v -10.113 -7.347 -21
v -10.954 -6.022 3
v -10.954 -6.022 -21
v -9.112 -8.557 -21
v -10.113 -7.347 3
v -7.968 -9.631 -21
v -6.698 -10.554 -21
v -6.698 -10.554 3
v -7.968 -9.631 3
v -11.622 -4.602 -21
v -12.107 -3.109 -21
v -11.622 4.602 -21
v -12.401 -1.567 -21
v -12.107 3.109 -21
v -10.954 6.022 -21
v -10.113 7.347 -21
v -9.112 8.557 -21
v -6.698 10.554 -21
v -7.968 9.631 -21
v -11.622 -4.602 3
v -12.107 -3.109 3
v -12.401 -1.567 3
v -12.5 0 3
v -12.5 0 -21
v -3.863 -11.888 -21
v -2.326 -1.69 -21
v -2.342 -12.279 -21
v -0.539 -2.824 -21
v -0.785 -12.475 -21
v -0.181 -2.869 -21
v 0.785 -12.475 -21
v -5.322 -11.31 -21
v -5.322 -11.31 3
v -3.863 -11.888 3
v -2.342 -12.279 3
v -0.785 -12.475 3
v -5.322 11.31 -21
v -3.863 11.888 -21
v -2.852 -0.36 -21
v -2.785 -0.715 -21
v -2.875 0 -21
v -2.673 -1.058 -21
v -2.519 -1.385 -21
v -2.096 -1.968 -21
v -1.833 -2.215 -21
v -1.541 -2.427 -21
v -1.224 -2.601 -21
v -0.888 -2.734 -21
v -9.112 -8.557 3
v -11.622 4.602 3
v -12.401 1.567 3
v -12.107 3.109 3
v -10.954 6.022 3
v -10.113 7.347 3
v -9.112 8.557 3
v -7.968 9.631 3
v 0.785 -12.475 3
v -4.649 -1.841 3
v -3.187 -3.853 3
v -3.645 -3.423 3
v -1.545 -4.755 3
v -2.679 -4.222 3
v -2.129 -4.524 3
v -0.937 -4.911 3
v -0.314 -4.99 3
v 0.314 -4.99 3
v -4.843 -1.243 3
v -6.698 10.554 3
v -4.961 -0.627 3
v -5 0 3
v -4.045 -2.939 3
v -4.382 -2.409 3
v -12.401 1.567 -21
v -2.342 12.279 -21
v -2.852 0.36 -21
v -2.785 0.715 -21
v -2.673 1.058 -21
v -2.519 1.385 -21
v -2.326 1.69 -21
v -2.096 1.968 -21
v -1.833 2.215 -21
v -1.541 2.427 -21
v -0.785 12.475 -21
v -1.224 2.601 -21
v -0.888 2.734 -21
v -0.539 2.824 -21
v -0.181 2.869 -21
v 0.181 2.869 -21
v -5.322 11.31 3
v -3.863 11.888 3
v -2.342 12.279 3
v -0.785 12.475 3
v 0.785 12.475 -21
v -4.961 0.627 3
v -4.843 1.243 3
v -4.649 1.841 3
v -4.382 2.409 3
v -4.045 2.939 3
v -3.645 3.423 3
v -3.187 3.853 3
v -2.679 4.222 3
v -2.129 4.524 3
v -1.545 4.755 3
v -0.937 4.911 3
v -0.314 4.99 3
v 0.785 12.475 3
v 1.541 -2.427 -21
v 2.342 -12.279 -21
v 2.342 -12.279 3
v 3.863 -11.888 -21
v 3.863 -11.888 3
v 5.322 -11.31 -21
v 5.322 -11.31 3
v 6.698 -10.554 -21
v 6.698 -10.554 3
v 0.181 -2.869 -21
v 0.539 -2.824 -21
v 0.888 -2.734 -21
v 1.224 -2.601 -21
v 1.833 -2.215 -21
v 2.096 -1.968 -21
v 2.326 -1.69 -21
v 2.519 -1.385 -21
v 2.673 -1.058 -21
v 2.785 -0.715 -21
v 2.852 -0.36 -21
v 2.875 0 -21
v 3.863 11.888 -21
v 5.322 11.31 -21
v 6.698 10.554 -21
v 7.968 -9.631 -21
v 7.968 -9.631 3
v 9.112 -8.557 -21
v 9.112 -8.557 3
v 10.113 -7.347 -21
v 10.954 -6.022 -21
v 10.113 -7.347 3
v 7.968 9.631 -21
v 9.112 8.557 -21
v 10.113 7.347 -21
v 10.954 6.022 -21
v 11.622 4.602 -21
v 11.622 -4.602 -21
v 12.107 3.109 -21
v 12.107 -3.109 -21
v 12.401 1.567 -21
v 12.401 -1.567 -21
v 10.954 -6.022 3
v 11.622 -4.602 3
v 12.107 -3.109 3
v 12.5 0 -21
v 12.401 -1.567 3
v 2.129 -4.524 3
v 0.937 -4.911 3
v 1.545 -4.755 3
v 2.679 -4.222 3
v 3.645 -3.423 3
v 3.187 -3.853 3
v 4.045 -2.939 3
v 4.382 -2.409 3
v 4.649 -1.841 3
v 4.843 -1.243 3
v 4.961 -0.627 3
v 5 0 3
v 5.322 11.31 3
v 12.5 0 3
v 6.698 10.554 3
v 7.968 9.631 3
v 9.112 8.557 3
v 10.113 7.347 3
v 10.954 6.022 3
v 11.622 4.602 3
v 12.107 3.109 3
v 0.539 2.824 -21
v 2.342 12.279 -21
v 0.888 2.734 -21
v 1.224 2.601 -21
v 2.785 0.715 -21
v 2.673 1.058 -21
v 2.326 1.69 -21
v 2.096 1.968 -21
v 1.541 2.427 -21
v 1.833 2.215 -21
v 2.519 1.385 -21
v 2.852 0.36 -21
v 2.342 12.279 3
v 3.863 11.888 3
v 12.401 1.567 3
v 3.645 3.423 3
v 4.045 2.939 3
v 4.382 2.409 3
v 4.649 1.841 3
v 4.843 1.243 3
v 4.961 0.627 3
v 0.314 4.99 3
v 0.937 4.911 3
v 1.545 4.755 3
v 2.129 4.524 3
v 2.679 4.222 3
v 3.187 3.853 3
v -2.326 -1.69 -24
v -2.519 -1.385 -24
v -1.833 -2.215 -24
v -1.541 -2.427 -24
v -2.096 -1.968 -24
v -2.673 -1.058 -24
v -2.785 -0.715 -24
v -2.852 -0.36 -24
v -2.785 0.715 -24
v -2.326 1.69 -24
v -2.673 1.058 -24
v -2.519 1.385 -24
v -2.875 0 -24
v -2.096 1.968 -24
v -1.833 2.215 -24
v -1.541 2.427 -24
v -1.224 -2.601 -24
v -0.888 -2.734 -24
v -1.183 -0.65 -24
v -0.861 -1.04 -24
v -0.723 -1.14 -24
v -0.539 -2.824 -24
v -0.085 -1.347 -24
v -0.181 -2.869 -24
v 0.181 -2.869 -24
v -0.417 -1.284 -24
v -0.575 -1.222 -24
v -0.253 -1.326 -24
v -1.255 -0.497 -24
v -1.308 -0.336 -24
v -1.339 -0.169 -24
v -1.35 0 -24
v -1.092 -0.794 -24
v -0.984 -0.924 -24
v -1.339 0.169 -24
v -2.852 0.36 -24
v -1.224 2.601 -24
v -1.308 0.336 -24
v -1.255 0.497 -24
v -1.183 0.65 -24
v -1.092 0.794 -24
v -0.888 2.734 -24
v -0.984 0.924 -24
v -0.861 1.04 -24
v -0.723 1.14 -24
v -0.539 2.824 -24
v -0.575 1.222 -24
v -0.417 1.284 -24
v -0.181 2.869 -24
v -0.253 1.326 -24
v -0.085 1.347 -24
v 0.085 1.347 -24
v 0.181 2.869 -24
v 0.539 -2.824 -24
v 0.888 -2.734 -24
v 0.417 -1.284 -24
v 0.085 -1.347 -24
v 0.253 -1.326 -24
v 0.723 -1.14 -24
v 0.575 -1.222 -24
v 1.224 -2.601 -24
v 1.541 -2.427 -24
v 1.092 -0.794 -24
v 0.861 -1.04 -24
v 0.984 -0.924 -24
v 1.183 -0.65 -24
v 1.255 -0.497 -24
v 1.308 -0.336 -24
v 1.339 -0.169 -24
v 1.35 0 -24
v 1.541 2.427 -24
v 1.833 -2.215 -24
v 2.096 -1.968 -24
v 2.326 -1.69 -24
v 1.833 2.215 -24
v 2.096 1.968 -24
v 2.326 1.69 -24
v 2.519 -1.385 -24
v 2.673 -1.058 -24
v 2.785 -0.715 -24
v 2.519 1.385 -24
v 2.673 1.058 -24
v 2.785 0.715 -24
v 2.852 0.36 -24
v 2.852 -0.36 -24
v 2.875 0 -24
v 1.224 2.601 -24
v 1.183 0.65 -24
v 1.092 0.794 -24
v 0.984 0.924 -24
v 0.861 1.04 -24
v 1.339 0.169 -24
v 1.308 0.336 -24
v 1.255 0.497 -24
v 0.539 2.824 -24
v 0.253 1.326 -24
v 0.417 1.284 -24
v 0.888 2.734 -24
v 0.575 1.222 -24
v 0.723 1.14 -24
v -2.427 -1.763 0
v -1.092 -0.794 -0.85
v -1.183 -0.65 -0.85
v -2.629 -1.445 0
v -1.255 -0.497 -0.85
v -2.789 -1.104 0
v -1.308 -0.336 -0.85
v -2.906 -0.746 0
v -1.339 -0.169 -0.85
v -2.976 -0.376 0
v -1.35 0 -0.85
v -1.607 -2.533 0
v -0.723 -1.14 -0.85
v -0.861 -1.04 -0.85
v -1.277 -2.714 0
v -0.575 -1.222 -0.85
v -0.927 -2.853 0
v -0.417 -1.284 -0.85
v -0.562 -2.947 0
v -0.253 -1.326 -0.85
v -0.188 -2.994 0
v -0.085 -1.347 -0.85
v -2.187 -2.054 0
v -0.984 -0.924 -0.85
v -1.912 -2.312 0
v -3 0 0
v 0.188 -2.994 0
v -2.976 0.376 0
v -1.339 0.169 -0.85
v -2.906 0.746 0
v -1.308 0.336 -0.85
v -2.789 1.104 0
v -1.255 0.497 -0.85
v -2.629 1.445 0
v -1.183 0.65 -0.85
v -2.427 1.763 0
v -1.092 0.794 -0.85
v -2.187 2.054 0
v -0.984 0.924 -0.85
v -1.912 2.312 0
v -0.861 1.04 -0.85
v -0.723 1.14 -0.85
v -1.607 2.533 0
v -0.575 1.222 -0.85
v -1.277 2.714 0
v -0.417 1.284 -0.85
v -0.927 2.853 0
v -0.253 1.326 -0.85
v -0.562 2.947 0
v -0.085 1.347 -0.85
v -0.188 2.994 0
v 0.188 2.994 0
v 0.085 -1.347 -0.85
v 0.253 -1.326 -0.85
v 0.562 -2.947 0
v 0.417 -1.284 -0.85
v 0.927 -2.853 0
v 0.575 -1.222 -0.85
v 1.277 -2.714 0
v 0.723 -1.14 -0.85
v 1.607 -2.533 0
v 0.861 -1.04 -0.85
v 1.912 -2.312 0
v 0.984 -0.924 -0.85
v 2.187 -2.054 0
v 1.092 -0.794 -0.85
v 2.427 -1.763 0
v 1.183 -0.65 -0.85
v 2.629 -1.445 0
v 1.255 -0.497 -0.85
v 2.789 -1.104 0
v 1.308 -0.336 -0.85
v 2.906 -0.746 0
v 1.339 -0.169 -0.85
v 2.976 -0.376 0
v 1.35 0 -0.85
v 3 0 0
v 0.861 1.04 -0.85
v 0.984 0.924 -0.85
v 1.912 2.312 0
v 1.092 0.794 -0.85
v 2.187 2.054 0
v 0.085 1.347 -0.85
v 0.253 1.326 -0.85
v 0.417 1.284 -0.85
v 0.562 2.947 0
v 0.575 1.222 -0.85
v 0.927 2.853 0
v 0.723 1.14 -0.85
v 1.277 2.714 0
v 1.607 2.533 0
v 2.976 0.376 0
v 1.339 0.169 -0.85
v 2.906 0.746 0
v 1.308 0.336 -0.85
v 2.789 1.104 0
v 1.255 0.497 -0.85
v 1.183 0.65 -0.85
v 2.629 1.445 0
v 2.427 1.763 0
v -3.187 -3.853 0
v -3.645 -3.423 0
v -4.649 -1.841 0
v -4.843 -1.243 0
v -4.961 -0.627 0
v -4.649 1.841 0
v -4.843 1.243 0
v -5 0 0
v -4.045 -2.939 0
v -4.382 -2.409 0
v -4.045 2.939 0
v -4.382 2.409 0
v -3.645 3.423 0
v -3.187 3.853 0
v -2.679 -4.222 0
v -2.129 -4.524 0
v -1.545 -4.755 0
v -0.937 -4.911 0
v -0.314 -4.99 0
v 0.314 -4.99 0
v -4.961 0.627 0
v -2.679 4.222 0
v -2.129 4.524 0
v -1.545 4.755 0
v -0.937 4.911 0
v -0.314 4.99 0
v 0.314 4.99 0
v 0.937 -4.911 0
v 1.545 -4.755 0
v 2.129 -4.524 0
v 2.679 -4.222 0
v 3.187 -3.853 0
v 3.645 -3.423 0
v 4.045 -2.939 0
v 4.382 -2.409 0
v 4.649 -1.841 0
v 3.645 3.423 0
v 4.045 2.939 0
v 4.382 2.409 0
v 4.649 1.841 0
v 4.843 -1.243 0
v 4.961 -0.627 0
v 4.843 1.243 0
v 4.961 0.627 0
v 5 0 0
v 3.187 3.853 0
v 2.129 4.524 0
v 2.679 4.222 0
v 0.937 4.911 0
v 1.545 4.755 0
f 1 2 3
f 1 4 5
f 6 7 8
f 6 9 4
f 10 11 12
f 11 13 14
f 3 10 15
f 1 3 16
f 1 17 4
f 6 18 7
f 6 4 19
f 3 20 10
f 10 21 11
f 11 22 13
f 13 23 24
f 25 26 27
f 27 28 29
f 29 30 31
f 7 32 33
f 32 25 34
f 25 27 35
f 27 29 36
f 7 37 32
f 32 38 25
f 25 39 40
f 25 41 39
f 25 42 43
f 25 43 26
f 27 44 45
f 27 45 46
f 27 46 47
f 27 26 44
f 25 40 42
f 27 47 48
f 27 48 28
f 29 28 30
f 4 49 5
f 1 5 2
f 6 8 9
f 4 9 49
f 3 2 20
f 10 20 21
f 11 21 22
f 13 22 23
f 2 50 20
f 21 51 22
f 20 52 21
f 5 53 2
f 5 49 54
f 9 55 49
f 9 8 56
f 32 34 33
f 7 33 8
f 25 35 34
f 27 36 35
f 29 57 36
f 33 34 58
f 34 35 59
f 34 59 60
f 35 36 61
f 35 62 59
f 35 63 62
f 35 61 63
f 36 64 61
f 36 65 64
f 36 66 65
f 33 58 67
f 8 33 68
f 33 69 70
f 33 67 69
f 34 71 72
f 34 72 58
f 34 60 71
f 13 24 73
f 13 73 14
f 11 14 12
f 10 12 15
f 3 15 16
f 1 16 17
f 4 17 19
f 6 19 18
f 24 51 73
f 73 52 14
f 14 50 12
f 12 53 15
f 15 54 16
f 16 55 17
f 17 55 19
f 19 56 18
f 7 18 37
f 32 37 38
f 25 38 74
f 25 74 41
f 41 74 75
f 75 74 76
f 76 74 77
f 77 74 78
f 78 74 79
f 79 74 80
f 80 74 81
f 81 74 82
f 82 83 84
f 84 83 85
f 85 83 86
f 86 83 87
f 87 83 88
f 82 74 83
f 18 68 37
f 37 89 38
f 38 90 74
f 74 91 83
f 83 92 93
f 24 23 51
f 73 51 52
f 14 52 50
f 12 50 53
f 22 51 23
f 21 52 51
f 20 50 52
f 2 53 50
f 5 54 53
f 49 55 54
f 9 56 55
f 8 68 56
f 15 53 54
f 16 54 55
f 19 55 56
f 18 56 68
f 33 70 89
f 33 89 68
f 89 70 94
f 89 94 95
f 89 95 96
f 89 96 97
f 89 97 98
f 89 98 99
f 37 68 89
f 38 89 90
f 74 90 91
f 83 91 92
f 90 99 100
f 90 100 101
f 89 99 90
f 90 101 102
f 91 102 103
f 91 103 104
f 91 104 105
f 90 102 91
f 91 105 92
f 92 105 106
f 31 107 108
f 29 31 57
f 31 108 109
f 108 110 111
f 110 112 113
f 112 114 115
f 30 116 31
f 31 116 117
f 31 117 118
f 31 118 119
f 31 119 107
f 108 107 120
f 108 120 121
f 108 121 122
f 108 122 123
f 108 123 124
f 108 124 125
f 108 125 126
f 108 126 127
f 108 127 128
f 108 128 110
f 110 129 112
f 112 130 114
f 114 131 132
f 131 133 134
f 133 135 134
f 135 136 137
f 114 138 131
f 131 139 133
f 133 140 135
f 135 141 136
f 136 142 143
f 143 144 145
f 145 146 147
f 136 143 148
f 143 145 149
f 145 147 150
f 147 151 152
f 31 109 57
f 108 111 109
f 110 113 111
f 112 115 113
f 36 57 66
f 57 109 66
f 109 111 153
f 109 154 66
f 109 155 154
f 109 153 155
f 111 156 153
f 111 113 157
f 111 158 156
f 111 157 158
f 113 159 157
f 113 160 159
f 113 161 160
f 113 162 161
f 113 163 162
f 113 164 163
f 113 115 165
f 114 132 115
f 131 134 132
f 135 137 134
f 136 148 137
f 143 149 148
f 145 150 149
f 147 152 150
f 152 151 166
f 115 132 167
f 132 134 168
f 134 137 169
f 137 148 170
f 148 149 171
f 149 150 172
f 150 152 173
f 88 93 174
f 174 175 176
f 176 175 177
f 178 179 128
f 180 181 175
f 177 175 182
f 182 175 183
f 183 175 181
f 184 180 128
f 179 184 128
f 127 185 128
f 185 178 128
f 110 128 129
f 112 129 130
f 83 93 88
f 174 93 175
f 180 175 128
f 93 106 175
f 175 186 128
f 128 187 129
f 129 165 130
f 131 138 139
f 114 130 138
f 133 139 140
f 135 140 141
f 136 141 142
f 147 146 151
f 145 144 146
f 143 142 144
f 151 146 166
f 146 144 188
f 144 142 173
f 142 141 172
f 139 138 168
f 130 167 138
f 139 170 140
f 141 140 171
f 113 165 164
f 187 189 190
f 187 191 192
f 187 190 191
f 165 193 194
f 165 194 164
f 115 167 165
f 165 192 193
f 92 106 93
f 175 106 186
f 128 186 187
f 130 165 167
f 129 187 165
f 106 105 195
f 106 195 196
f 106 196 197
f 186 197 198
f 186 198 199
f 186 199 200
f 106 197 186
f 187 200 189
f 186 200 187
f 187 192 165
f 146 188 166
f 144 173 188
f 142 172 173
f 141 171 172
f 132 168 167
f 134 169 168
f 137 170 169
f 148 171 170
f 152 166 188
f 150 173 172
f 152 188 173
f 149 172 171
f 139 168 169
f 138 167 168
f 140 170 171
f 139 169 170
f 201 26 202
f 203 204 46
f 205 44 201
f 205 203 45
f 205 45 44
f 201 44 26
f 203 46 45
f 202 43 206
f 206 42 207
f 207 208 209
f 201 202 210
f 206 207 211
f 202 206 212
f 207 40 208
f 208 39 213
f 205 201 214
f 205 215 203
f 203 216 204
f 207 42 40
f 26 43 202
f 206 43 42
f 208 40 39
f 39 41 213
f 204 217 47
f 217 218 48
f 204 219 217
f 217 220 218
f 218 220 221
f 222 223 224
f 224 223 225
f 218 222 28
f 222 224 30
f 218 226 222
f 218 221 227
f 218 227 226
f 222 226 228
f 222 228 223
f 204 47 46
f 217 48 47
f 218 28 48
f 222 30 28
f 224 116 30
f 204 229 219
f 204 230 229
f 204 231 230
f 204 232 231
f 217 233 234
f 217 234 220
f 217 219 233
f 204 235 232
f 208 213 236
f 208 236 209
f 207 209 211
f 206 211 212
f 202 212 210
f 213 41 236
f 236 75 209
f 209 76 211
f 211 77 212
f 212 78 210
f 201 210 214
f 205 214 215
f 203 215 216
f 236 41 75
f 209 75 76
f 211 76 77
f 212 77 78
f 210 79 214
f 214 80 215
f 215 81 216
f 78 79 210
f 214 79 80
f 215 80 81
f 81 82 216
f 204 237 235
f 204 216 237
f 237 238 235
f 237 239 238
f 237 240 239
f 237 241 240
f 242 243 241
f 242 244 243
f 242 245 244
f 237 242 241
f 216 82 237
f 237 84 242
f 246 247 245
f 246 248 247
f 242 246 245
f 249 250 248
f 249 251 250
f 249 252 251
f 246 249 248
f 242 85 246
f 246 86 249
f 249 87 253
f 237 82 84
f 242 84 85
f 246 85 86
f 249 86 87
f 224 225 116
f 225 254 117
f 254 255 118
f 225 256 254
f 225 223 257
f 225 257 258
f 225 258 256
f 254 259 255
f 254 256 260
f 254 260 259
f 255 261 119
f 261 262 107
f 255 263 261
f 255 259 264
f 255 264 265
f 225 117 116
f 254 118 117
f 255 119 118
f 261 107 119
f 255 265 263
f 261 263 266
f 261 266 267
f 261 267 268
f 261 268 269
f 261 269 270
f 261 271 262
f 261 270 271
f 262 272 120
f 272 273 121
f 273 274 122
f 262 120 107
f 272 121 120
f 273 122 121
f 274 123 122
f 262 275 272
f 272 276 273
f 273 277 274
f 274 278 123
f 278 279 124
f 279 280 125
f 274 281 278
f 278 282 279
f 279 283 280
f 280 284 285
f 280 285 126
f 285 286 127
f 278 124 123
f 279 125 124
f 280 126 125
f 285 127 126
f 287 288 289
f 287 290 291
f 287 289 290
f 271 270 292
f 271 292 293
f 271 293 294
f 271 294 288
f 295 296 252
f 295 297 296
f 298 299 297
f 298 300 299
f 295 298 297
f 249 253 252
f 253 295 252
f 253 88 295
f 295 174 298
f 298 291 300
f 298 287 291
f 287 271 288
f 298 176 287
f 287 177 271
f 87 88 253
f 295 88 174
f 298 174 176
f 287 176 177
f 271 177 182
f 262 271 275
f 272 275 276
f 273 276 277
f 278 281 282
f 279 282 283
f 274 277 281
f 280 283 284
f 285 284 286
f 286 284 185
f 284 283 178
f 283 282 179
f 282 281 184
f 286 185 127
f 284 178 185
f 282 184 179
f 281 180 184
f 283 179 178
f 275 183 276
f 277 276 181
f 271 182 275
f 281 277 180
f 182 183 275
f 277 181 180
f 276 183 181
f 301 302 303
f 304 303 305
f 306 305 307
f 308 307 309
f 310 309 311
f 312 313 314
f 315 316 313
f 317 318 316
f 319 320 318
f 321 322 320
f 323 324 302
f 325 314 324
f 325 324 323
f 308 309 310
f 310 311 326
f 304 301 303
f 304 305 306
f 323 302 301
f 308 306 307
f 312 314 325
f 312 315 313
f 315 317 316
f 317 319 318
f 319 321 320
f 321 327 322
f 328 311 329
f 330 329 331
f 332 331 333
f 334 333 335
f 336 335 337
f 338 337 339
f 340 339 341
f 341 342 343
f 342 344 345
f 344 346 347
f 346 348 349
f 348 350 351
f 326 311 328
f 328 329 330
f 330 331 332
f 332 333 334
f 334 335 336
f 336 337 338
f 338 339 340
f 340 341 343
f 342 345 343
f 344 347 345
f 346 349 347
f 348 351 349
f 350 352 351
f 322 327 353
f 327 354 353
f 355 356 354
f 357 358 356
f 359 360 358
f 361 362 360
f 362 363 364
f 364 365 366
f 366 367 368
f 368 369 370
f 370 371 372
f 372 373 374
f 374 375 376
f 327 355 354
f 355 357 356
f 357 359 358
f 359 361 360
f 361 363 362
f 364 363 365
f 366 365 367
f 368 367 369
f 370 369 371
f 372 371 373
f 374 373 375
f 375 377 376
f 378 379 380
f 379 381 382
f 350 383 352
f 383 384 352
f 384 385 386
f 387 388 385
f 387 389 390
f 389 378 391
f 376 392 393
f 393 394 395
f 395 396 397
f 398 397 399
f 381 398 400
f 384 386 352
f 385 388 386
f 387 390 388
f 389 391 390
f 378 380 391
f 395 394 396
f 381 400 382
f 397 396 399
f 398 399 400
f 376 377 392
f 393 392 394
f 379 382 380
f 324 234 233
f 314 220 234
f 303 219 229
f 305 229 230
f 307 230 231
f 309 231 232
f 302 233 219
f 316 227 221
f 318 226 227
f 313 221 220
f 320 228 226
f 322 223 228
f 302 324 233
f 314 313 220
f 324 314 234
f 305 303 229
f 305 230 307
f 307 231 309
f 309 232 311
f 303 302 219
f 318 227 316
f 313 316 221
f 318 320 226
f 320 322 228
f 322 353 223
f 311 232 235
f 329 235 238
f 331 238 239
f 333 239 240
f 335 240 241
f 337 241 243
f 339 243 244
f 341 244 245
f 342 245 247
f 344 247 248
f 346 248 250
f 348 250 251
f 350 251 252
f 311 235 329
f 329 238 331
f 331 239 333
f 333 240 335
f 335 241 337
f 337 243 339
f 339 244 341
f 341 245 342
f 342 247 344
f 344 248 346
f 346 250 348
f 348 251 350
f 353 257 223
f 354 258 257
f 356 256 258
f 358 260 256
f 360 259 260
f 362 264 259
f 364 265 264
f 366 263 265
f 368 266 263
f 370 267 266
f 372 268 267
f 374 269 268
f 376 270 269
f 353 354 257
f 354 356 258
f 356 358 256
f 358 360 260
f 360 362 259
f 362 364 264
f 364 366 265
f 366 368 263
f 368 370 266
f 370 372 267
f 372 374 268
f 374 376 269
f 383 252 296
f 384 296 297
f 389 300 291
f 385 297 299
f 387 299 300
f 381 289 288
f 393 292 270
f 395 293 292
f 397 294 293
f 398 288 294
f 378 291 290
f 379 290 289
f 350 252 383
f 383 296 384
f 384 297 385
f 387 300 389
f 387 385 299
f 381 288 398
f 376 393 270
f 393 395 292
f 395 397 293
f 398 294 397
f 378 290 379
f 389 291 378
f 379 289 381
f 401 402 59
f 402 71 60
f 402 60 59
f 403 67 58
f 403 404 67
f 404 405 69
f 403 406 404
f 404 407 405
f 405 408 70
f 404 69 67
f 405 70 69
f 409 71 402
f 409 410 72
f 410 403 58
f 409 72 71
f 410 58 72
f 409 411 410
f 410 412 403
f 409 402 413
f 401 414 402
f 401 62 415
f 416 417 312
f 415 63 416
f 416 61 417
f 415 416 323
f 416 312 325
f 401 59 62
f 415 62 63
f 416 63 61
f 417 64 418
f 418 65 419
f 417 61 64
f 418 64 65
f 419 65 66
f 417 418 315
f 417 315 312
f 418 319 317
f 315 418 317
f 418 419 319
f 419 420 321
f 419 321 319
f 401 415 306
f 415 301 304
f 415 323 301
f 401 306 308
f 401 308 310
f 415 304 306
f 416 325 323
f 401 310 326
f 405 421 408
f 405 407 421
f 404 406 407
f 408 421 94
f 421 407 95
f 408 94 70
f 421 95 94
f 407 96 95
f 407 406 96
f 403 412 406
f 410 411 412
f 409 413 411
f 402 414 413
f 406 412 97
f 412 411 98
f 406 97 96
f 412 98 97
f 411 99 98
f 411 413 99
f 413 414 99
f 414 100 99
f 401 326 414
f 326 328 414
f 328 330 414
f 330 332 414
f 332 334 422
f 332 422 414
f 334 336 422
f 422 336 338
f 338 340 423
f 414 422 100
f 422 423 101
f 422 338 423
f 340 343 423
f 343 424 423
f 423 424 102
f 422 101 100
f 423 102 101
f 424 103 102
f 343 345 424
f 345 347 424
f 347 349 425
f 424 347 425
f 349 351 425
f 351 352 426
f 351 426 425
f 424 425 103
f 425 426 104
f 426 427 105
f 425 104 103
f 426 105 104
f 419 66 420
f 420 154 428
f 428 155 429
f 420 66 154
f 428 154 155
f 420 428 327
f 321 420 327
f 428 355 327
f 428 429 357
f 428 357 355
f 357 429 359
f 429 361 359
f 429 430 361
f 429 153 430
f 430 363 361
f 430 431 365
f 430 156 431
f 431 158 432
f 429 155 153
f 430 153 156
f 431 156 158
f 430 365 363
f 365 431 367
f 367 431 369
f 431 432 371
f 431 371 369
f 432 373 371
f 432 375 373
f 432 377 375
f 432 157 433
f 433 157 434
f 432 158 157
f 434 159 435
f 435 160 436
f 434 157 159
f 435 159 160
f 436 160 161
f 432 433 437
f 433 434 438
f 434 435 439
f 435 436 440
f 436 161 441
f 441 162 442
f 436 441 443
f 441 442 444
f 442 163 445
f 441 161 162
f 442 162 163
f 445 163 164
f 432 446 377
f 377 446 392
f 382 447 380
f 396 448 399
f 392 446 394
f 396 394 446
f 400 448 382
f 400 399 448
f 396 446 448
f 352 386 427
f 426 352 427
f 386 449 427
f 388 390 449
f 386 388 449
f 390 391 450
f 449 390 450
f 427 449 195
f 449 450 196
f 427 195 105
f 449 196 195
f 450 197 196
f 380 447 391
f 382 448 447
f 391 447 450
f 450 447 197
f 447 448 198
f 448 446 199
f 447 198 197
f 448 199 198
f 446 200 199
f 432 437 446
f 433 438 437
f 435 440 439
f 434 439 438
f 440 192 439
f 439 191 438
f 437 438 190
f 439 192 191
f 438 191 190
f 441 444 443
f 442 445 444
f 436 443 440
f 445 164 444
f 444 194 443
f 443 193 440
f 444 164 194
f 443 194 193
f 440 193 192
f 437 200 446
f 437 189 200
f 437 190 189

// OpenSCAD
$fn = 50;


difference() {
	union() {
		translate(v = [0, 0, -21.0000000000]) {
			cylinder(h = 24, r = 12.5000000000);
		}
		#translate(v = [0, 0, -24.0000000000]) {
			cylinder(h = 24, r = 2.8750000000);
		}
	}
	union() {
		translate(v = [0, 0, 0]) {
			rotate(a = [0, 0, 0]) {
				difference() {
					union() {
						translate(v = [0, 0, -24.0000000000]) {
							cylinder(h = 24, r = 1.0000000000);
						}
						translate(v = [0, 0, -0.8500000000]) {
							cylinder(h = 0.8500000000, r1 = 1.3500000000, r2 = 3.0000000000);
						}
						translate(v = [0, 0, -24.0000000000]) {
							cylinder(h = 24, r = 1.3500000000);
						}
						translate(v = [0, 0, -24.0000000000]) {
							cylinder(h = 24, r = 1.0000000000);
						}
					}
					union();
				}
			}
		}
		#cylinder(h = 3, r = 5.0000000000);
	}
}
